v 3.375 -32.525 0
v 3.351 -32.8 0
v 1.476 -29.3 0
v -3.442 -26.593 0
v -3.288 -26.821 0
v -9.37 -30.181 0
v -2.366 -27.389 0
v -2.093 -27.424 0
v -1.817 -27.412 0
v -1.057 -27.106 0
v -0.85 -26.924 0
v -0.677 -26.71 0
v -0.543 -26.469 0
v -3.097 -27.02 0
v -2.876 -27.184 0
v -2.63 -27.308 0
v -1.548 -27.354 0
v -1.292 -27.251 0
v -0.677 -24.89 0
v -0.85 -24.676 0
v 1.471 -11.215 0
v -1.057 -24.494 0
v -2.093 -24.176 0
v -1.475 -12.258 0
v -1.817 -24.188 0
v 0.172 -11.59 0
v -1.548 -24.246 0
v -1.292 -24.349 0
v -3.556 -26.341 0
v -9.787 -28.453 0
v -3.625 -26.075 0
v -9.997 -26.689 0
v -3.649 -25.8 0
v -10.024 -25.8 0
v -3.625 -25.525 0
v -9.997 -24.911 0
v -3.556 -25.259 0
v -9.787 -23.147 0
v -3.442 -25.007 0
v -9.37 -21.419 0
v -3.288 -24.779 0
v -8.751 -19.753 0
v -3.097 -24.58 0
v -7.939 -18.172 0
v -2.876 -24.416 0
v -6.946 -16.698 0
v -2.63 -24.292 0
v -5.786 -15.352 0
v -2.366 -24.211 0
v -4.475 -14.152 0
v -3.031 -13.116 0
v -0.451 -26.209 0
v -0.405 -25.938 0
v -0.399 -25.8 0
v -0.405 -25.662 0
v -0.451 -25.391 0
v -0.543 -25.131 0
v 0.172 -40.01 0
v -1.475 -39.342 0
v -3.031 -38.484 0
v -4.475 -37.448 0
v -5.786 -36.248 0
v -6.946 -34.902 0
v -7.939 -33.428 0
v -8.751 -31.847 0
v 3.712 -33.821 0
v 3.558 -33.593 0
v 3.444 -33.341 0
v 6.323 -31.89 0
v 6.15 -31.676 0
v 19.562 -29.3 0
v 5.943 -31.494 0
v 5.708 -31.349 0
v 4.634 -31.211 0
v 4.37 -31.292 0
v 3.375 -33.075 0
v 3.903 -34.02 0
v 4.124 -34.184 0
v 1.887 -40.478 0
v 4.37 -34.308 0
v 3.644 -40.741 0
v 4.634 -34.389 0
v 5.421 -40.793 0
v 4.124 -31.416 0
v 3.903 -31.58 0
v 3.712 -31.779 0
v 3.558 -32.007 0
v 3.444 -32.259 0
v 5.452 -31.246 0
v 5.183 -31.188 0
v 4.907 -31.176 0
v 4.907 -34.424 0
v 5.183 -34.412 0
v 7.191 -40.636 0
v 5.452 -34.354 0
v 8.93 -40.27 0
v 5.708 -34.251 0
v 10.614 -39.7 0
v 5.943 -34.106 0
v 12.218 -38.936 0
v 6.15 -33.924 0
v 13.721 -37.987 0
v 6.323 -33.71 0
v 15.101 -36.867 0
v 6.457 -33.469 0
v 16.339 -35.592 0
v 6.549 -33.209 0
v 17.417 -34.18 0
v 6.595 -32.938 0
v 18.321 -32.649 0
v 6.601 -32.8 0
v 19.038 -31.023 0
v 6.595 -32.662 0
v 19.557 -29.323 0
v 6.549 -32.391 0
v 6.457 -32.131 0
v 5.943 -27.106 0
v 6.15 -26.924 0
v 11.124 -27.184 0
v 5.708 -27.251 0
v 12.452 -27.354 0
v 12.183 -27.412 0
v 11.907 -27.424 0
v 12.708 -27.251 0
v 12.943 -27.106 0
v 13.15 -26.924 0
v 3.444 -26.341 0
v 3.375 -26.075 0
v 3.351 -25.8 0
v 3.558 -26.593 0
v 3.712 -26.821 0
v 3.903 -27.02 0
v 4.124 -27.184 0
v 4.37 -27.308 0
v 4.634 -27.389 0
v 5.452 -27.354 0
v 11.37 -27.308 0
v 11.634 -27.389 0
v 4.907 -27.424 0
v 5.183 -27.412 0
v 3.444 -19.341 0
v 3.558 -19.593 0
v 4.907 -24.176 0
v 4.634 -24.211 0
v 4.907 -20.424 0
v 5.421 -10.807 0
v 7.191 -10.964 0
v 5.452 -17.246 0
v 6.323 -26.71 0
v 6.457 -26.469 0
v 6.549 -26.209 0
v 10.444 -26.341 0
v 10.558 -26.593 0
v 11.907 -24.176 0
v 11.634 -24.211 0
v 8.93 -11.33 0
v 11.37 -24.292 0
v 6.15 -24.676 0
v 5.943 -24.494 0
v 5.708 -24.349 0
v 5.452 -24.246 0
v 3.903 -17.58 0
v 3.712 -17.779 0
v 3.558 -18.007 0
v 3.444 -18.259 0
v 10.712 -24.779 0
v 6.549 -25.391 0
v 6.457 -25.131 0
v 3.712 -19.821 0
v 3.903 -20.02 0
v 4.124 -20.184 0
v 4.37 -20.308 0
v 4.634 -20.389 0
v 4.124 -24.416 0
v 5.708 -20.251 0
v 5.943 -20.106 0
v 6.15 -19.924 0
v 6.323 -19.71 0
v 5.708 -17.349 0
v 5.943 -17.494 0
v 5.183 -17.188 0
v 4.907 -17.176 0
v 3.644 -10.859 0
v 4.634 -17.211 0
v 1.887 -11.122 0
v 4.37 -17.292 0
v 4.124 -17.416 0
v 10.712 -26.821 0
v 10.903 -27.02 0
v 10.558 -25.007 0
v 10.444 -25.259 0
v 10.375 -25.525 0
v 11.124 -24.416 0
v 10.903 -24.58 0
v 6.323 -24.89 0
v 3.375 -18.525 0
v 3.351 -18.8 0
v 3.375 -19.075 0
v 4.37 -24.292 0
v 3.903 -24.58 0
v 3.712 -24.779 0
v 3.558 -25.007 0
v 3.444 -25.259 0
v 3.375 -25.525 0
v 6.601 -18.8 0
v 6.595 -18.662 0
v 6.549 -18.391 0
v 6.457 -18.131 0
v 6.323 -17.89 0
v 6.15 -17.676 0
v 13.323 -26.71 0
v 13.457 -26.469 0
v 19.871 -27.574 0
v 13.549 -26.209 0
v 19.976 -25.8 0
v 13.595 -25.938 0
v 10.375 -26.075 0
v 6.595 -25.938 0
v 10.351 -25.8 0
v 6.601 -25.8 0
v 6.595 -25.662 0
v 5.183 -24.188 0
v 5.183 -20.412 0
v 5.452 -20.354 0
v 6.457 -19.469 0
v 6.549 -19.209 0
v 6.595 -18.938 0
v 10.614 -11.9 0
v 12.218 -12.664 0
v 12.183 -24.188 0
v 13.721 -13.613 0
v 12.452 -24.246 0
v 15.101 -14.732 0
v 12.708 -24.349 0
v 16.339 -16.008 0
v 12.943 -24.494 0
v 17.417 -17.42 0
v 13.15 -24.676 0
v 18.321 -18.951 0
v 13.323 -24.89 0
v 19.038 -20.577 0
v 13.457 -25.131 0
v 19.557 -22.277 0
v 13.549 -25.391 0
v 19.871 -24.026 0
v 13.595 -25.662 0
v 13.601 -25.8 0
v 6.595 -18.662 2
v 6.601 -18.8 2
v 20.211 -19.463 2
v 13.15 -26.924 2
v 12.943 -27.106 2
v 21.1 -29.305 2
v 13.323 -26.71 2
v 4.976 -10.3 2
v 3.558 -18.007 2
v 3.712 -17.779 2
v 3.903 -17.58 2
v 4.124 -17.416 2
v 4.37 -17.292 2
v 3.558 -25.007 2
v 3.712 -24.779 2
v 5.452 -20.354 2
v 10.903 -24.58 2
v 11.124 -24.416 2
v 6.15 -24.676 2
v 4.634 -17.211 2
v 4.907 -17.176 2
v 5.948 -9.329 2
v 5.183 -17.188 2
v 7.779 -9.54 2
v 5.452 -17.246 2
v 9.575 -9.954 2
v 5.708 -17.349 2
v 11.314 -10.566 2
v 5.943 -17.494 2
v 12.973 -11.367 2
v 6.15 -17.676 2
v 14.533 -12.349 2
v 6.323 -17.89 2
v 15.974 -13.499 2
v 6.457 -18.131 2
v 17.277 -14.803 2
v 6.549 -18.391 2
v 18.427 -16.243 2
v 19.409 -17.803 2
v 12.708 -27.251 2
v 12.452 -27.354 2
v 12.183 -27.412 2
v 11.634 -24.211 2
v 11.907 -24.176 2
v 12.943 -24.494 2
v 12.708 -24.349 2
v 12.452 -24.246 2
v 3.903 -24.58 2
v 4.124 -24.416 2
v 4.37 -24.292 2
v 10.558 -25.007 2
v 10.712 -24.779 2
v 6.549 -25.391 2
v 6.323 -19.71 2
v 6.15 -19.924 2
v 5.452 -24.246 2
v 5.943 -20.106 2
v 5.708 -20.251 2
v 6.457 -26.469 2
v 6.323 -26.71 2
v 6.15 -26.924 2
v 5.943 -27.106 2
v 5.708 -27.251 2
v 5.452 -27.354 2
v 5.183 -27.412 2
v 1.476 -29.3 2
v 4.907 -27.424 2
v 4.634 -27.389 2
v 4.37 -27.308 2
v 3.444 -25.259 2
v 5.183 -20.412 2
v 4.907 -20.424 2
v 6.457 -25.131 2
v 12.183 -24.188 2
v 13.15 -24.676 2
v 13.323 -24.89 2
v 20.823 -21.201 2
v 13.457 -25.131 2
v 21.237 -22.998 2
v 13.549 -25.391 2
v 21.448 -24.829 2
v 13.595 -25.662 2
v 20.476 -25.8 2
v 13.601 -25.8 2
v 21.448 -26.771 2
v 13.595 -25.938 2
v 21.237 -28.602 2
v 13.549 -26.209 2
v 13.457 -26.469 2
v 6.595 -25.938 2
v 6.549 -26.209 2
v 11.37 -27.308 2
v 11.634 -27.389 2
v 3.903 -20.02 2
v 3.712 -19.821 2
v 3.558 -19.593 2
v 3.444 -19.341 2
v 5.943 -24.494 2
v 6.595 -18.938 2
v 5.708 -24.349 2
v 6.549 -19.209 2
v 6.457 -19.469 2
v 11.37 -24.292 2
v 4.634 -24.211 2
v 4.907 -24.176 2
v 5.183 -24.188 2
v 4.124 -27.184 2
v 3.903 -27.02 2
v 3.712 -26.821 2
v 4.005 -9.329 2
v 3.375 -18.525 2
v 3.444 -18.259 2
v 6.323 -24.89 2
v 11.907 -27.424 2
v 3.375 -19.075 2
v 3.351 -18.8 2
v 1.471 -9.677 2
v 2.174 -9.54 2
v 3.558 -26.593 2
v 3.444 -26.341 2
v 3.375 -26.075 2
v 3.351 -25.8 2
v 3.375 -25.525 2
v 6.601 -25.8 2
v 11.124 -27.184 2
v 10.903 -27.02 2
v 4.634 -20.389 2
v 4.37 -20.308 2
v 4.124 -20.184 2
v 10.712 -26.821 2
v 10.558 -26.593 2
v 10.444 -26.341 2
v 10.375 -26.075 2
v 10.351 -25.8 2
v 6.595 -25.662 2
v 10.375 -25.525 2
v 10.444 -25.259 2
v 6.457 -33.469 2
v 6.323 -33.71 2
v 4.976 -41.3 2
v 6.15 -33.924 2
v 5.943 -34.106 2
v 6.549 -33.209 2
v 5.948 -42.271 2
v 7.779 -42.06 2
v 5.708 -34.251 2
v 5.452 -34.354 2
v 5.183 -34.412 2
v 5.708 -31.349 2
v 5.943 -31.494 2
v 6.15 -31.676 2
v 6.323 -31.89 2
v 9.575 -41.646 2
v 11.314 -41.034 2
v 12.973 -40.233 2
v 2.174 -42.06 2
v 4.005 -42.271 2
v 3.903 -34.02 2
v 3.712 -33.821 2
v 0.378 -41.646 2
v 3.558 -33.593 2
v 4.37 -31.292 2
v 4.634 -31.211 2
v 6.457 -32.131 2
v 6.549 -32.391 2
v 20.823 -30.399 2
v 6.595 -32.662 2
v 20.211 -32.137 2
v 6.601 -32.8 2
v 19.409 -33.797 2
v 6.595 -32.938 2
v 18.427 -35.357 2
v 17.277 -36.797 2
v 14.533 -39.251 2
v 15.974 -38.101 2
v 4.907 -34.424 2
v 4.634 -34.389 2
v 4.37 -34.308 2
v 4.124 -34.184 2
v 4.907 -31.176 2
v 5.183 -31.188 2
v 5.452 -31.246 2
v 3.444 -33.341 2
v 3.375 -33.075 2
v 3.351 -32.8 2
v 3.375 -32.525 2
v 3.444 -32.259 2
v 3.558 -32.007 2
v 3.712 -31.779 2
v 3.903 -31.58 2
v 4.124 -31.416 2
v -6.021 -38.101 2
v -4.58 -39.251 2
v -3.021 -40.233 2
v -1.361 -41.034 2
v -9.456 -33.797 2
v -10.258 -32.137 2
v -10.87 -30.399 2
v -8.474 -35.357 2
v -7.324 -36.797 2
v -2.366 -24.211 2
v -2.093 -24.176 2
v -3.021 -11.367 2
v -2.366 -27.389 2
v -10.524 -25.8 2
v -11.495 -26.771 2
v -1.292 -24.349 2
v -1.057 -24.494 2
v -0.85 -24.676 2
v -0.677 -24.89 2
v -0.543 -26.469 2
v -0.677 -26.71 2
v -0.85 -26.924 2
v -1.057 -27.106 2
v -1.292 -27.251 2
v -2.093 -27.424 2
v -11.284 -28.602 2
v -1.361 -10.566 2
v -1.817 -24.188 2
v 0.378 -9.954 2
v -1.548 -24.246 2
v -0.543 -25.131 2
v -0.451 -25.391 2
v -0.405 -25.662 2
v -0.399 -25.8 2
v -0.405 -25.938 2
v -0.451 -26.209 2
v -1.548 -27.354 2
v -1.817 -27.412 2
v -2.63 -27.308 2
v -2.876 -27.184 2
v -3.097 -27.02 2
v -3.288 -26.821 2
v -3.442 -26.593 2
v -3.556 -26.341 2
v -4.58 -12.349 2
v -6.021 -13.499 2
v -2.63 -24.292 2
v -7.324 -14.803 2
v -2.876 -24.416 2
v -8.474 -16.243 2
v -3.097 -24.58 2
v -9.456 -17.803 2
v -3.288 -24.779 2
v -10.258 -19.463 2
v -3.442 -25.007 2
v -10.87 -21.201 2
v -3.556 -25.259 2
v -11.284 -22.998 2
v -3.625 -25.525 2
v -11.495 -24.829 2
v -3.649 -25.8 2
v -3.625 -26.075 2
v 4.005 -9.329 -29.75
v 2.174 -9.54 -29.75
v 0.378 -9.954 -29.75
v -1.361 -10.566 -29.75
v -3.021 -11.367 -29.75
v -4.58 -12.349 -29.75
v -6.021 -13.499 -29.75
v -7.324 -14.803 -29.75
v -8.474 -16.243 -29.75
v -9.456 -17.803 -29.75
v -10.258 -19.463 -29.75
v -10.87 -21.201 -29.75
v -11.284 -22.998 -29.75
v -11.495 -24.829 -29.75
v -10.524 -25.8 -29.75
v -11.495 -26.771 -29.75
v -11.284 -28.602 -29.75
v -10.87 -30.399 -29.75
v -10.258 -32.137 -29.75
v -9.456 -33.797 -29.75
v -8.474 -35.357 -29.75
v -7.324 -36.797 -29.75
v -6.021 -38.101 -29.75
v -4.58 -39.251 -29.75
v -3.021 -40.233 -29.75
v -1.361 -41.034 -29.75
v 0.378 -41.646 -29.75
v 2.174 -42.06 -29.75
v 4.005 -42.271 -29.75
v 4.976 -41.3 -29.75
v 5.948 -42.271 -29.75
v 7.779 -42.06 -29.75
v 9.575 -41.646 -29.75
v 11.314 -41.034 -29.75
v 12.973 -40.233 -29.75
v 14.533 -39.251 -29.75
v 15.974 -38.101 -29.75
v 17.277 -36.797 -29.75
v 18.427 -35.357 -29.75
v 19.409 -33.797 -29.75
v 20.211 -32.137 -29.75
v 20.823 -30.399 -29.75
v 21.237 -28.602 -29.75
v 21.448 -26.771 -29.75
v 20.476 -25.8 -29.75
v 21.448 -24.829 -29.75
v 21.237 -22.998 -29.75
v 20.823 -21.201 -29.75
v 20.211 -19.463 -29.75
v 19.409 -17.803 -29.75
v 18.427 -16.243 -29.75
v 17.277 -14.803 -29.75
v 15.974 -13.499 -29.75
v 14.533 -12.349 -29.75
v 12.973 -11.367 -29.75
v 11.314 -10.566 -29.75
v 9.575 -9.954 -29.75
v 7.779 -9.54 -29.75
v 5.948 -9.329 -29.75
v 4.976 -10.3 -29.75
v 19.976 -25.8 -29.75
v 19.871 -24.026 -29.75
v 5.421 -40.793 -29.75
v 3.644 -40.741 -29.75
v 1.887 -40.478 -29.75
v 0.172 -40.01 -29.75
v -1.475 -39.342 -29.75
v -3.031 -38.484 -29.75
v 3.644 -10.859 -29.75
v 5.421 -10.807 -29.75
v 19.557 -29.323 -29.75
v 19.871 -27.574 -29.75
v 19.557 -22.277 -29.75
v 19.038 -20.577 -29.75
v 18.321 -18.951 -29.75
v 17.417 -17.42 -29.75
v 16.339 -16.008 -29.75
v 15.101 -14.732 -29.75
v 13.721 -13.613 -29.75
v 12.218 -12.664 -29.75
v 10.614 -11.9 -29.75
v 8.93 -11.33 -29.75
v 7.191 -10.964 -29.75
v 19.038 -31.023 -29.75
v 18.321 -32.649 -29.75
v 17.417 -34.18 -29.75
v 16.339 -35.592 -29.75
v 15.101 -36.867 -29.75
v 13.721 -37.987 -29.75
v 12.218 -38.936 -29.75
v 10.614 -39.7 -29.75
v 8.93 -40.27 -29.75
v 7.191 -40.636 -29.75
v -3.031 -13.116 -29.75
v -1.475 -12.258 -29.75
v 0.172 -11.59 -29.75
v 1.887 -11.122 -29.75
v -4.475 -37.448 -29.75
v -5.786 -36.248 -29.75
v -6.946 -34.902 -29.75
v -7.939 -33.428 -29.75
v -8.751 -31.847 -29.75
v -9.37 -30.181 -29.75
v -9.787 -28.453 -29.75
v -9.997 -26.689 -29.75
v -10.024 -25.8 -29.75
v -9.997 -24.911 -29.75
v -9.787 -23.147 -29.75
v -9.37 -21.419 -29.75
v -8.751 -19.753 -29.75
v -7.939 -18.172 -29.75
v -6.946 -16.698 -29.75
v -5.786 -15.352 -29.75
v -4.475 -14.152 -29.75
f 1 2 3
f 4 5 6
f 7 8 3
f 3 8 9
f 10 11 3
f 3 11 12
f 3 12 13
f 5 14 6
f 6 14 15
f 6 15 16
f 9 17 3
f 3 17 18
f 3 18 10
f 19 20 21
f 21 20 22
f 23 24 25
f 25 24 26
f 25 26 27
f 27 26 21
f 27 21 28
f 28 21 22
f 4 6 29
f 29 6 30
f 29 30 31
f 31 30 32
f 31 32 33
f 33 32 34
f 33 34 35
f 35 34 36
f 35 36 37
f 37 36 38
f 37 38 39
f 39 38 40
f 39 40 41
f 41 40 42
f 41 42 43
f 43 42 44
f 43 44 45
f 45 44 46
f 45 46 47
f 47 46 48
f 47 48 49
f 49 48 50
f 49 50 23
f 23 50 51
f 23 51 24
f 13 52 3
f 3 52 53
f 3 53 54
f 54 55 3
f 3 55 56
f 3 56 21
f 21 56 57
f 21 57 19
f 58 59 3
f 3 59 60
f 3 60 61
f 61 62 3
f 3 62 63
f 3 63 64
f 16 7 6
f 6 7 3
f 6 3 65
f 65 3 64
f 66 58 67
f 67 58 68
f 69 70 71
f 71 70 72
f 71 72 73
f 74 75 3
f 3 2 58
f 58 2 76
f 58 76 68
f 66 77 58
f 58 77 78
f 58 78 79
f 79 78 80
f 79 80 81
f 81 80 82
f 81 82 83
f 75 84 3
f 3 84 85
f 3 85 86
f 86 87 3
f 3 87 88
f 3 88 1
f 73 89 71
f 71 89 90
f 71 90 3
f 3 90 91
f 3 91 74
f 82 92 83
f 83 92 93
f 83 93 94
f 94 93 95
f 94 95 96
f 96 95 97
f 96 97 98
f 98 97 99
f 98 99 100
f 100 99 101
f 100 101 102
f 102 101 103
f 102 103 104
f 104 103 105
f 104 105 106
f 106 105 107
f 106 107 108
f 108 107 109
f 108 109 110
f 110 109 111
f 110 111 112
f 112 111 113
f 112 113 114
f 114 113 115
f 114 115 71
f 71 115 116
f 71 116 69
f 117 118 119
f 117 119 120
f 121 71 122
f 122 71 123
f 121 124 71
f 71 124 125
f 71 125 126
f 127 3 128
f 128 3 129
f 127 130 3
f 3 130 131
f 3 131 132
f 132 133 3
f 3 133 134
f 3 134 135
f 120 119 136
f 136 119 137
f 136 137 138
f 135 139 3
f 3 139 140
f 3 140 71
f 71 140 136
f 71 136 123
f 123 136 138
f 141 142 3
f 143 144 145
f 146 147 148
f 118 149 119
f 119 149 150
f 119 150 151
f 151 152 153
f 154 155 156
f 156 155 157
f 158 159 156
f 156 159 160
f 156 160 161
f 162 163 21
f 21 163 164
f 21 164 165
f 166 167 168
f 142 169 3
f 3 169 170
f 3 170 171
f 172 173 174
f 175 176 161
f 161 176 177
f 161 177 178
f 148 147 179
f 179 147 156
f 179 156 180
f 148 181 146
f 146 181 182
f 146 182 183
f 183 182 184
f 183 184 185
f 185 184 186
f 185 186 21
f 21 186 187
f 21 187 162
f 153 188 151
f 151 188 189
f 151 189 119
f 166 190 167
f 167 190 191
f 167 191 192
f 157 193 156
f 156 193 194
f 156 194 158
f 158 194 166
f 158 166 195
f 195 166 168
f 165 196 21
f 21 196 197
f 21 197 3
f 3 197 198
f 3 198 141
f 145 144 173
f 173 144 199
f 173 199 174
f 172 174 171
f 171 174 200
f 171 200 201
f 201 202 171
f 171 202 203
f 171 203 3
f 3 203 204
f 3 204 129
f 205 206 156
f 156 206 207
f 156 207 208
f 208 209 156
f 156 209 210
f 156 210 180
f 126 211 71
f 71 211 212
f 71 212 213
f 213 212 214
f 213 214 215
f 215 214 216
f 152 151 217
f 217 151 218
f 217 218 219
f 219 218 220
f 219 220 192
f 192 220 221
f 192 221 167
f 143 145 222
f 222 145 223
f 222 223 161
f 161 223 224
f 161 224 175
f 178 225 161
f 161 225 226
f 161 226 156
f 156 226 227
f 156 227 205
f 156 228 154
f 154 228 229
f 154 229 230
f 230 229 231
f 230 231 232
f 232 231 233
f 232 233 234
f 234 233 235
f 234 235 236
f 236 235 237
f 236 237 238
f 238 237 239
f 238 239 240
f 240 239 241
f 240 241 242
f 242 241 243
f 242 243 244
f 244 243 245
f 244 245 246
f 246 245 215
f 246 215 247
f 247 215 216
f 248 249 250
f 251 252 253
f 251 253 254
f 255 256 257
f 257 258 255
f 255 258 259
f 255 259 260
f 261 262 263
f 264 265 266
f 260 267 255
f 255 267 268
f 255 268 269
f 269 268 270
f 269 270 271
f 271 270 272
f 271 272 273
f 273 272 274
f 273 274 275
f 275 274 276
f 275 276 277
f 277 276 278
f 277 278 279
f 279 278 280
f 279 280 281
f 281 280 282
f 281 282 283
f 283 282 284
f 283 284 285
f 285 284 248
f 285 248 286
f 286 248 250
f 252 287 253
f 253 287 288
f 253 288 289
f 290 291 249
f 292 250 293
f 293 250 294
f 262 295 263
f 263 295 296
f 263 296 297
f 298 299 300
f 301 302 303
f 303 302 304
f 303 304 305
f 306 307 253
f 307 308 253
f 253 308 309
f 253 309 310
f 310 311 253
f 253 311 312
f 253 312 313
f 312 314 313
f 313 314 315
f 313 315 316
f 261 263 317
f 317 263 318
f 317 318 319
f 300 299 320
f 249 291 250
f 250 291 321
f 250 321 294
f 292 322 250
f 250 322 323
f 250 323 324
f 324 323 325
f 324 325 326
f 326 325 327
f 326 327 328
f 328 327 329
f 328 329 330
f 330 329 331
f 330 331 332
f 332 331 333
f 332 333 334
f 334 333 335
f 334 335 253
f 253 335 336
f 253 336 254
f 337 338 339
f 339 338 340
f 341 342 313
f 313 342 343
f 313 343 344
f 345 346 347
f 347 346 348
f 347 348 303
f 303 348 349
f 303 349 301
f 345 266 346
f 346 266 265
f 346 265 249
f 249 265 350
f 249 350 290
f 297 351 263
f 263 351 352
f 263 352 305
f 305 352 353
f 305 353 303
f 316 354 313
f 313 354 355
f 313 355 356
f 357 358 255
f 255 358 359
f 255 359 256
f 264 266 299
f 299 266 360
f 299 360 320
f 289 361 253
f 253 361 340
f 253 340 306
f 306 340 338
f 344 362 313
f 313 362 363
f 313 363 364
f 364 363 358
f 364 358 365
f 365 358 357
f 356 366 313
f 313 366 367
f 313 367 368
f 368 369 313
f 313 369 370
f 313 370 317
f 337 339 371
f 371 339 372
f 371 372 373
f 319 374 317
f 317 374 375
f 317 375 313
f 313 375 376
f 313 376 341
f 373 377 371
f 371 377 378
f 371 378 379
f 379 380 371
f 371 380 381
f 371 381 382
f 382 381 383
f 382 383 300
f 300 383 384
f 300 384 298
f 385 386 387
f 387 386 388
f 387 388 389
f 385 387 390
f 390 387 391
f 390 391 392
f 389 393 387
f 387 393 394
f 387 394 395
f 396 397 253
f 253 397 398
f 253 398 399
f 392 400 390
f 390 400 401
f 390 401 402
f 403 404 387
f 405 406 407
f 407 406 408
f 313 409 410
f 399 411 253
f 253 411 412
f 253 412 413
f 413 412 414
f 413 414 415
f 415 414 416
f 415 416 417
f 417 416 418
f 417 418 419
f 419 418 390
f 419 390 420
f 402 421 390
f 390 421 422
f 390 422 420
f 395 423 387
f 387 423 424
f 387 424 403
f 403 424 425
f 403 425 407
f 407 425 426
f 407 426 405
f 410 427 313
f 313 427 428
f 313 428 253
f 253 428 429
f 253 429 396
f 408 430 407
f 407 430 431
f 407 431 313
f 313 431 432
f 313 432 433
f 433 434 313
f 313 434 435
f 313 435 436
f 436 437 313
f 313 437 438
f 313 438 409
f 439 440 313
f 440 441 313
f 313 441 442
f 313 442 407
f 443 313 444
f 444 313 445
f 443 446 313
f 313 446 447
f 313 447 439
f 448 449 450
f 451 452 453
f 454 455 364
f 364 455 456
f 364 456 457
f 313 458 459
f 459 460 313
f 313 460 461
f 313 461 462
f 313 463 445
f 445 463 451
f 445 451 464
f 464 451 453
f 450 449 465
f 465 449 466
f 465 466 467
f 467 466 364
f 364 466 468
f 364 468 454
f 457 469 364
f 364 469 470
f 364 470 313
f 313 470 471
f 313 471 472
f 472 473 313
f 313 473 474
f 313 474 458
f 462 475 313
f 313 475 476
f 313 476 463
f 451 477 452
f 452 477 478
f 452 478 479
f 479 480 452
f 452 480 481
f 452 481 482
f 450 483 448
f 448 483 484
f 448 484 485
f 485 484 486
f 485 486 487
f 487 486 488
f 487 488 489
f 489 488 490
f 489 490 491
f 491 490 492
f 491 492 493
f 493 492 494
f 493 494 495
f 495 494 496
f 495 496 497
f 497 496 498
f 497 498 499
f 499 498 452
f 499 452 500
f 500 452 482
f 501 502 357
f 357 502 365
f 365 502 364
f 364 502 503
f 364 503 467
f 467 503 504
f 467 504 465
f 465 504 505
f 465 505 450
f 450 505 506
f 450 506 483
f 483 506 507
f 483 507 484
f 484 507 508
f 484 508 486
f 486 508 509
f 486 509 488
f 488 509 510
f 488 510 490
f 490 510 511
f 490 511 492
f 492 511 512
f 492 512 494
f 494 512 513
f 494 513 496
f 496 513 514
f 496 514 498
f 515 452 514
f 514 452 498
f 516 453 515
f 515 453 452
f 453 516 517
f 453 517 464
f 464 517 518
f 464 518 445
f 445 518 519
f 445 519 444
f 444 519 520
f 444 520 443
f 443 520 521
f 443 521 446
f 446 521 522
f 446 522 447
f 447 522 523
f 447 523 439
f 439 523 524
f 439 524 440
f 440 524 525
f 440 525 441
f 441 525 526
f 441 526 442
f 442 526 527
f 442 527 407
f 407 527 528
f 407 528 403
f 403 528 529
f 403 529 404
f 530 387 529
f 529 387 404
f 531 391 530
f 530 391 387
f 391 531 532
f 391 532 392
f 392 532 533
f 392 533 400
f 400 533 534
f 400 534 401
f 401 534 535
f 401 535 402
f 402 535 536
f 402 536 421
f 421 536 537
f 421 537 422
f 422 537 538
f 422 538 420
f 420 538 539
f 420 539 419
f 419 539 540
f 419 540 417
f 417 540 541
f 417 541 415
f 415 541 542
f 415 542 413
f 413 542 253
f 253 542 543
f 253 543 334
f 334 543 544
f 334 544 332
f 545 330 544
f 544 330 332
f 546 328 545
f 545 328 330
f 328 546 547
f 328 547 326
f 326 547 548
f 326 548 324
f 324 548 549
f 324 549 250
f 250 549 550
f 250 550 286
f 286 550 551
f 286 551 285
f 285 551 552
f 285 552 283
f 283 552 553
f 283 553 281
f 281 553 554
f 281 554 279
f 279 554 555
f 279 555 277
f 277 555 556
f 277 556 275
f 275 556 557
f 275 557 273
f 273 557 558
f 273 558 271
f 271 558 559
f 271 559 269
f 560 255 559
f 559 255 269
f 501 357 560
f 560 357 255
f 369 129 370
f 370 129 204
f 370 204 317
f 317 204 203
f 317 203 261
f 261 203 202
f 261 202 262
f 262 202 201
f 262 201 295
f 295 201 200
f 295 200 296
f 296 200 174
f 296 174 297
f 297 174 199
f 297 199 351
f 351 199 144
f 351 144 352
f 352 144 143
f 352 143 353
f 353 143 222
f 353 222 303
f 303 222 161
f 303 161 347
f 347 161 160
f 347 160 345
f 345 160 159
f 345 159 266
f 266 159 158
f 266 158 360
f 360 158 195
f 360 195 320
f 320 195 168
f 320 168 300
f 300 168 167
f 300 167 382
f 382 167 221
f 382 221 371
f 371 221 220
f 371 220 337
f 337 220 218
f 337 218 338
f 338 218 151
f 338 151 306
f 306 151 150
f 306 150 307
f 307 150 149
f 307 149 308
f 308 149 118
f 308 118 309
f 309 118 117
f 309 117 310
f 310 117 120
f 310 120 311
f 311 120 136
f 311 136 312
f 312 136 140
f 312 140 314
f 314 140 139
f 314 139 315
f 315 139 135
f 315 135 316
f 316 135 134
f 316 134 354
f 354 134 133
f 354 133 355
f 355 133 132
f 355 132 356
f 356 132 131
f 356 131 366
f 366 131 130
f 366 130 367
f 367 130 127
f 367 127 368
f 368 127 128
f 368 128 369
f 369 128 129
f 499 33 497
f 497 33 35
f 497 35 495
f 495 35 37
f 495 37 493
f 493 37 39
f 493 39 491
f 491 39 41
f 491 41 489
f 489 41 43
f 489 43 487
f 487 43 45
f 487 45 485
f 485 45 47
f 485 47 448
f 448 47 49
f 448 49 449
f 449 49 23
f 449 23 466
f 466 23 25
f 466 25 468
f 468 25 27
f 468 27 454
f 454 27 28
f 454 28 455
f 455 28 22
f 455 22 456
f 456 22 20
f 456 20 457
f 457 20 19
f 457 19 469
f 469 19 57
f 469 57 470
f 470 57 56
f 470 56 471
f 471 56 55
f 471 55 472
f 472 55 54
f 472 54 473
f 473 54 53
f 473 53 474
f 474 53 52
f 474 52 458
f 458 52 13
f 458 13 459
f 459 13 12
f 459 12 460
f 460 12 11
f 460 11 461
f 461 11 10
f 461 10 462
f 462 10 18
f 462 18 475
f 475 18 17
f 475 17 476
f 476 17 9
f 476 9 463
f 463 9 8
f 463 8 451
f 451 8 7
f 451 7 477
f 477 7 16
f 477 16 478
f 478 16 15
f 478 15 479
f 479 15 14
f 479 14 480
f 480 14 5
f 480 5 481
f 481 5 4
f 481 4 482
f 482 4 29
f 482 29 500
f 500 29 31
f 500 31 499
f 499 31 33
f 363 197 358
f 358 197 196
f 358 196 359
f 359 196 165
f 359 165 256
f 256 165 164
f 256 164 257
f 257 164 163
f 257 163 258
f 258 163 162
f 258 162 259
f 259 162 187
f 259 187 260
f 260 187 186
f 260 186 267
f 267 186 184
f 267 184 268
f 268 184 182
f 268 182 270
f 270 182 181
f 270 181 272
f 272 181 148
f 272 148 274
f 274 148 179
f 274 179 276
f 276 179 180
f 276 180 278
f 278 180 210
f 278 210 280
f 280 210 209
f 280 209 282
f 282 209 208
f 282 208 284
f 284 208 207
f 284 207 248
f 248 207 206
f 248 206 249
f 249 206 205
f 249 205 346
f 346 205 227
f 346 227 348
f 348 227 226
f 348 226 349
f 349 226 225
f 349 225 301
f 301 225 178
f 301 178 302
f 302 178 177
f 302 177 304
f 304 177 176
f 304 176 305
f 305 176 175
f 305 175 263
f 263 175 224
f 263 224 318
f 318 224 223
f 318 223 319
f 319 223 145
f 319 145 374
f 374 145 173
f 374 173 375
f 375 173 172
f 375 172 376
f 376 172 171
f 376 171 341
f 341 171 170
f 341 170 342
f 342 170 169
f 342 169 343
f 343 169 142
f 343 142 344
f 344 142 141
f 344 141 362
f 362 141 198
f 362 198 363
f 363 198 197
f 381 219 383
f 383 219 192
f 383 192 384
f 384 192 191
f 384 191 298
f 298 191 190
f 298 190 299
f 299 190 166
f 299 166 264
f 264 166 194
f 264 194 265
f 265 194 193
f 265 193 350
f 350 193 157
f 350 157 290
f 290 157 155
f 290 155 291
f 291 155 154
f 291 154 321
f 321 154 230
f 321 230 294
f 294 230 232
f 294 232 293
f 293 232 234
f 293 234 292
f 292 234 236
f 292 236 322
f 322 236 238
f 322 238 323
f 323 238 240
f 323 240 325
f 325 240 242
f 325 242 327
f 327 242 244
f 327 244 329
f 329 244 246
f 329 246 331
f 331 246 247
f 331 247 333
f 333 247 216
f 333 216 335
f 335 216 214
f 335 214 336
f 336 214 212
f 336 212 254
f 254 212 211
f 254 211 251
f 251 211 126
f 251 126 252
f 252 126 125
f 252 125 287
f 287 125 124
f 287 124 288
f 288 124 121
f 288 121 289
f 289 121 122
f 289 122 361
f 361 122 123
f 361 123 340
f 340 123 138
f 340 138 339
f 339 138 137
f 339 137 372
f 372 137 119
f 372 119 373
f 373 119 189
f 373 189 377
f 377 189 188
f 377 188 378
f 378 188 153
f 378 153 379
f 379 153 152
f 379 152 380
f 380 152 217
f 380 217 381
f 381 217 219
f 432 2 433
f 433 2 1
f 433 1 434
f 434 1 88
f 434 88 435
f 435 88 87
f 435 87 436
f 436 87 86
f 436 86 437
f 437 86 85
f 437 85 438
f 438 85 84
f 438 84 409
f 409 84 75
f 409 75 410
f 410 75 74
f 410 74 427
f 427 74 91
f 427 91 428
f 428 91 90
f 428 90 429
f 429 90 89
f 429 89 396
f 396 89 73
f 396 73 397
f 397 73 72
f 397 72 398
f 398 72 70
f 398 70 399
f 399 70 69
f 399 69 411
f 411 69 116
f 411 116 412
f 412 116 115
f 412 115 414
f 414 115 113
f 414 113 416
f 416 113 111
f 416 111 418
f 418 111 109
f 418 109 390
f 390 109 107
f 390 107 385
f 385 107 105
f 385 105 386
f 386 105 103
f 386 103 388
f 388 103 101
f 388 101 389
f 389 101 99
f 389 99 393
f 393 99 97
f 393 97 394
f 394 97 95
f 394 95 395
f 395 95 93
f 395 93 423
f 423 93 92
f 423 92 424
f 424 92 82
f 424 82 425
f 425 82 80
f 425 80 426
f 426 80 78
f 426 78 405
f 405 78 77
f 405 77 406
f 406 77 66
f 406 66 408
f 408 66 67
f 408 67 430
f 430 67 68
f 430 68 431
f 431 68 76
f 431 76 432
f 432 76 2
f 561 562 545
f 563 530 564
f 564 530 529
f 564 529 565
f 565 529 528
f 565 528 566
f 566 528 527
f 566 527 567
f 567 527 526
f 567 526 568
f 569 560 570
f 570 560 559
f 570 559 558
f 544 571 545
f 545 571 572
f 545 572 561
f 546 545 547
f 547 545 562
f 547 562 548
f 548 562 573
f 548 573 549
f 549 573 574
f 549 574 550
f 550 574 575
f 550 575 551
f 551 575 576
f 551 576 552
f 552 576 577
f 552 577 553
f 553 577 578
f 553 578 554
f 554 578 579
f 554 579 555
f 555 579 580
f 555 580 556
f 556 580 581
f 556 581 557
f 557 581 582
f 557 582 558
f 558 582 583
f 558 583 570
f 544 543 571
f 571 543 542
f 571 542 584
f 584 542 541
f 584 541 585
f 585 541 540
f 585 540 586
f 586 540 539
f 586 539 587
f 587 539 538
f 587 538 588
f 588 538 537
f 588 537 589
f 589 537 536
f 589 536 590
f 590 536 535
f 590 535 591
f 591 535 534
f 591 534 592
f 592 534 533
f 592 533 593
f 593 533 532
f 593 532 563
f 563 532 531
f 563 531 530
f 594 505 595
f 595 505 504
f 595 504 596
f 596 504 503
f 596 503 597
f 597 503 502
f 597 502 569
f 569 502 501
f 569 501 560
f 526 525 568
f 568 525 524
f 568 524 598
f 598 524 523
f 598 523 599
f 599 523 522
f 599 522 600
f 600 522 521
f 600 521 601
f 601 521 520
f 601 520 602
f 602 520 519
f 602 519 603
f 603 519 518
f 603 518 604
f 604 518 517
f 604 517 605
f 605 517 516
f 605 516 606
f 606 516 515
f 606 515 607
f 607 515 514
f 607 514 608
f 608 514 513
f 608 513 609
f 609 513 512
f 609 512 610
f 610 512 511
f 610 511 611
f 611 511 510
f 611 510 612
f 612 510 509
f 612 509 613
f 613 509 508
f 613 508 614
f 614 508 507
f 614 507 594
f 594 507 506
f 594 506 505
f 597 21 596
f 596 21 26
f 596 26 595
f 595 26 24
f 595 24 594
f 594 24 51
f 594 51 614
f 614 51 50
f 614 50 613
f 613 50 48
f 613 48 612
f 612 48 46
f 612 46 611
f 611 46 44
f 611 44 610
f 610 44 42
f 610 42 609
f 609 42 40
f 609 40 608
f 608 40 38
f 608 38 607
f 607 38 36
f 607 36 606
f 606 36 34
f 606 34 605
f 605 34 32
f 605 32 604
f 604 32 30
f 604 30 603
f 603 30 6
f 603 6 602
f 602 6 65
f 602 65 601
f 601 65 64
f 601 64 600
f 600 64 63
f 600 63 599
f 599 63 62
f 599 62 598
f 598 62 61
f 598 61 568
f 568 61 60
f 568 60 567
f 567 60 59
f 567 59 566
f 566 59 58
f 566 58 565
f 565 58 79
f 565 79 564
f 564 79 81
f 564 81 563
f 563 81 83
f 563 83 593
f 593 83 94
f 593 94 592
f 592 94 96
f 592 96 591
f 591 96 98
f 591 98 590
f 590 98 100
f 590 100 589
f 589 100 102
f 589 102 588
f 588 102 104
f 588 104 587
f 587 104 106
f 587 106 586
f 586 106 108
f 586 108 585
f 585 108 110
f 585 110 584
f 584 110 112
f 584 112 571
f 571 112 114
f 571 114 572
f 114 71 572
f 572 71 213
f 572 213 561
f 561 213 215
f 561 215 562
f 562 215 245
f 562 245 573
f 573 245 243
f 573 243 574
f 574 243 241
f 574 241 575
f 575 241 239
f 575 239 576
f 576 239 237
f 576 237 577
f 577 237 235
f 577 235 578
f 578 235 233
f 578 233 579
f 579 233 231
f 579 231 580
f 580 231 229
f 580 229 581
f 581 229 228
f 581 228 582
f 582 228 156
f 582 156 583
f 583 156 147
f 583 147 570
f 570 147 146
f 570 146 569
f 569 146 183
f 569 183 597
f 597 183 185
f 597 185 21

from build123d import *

# Parameters (mm, degrees)
CROQUIS1_R              = 1.625
SALIENTE_EXTRUIR1_DEPTH = 2
SALIENTE_EXTRUIR2_START = 29.75
CROQUIS3_R              = 15
SALIENTE_EXTRUIR2_DEPTH = 29.75


with BuildPart() as part:
    # Croquis1 → Saliente-Extruir1 (new body)
    with BuildSketch(Plane.XY):
        with BuildLine():
            Line((21.447717133, -26.771381771), (20.476335362, -25.8))
            Line((20.476335362, -25.8), (21.447717133, -24.828618229))
            ThreePointArc((21.447717133, -24.828618229), (16.643597251, -14.13273811), (5.947717133, -9.328618229))
            Line((5.947717133, -9.328618229), (4.976335362, -10.3))
            Line((4.976335362, -10.3), (4.00495359, -9.328618229))
            ThreePointArc((4.00495359, -9.328618229), (-6.690926528, -14.13273811), (-11.49504641, -24.828618229))
            Line((-11.49504641, -24.828618229), (-10.523664638, -25.8))
            Line((-10.523664638, -25.8), (-11.49504641, -26.771381771))
            ThreePointArc((-11.49504641, -26.771381771), (-6.690926528, -37.46726189), (4.00495359, -42.271381771))
            Line((4.00495359, -42.271381771), (4.976335362, -41.3))
            Line((4.976335362, -41.3), (5.947717133, -42.271381771))
            ThreePointArc((5.947717133, -42.271381771), (16.643597251, -37.46726189), (21.447717133, -26.771381771))
        make_face()
        with Locations((4.976335362, -25.8)):
            Circle(CROQUIS1_R, mode=Mode.SUBTRACT)
        with Locations((-2.023664638, -25.8)):
            Circle(CROQUIS1_R, mode=Mode.SUBTRACT)
        with Locations((4.976335362, -18.8)):
            Circle(CROQUIS1_R, mode=Mode.SUBTRACT)
        with Locations((11.976335362, -25.8)):
            Circle(CROQUIS1_R, mode=Mode.SUBTRACT)
        with Locations((4.976335362, -32.8)):
            Circle(CROQUIS1_R, mode=Mode.SUBTRACT)
    extrude(amount=SALIENTE_EXTRUIR1_DEPTH)

    # Croquis3 → Saliente-Extruir2 (add)
    with BuildSketch(Plane(origin=(0, 0, 0), x_dir=(-1, 0, 0), z_dir=(0, 0, -1)).offset(SALIENTE_EXTRUIR2_START)):
        with BuildLine():
            Line((-5.947717133, -9.328618229), (-4.976335362, -10.3))
            Line((-4.976335362, -10.3), (-4.00495359, -9.328618229))
            ThreePointArc((-4.00495359, -9.328618229), (6.690926528, -14.13273811), (11.49504641, -24.828618229))
            Line((11.49504641, -24.828618229), (10.523664638, -25.8))
            Line((10.523664638, -25.8), (11.49504641, -26.771381771))
            ThreePointArc((11.49504641, -26.771381771), (6.690926528, -37.46726189), (-4.00495359, -42.271381771))
            Line((-4.00495359, -42.271381771), (-4.976335362, -41.3))
            Line((-4.976335362, -41.3), (-5.947717133, -42.271381771))
            ThreePointArc((-5.947717133, -42.271381771), (-16.643597251, -37.46726189), (-21.447717133, -26.771381771))
            Line((-21.447717133, -26.771381771), (-20.476335362, -25.8))
            Line((-20.476335362, -25.8), (-21.447717133, -24.828618229))
            ThreePointArc((-21.447717133, -24.828618229), (-16.643597251, -14.13273811), (-5.947717133, -9.328618229))
        make_face()
        with Locations((-4.976335362, -25.8)):
            Circle(CROQUIS3_R, mode=Mode.SUBTRACT)
    extrude(amount=-SALIENTE_EXTRUIR2_DEPTH)


solid = part.part
